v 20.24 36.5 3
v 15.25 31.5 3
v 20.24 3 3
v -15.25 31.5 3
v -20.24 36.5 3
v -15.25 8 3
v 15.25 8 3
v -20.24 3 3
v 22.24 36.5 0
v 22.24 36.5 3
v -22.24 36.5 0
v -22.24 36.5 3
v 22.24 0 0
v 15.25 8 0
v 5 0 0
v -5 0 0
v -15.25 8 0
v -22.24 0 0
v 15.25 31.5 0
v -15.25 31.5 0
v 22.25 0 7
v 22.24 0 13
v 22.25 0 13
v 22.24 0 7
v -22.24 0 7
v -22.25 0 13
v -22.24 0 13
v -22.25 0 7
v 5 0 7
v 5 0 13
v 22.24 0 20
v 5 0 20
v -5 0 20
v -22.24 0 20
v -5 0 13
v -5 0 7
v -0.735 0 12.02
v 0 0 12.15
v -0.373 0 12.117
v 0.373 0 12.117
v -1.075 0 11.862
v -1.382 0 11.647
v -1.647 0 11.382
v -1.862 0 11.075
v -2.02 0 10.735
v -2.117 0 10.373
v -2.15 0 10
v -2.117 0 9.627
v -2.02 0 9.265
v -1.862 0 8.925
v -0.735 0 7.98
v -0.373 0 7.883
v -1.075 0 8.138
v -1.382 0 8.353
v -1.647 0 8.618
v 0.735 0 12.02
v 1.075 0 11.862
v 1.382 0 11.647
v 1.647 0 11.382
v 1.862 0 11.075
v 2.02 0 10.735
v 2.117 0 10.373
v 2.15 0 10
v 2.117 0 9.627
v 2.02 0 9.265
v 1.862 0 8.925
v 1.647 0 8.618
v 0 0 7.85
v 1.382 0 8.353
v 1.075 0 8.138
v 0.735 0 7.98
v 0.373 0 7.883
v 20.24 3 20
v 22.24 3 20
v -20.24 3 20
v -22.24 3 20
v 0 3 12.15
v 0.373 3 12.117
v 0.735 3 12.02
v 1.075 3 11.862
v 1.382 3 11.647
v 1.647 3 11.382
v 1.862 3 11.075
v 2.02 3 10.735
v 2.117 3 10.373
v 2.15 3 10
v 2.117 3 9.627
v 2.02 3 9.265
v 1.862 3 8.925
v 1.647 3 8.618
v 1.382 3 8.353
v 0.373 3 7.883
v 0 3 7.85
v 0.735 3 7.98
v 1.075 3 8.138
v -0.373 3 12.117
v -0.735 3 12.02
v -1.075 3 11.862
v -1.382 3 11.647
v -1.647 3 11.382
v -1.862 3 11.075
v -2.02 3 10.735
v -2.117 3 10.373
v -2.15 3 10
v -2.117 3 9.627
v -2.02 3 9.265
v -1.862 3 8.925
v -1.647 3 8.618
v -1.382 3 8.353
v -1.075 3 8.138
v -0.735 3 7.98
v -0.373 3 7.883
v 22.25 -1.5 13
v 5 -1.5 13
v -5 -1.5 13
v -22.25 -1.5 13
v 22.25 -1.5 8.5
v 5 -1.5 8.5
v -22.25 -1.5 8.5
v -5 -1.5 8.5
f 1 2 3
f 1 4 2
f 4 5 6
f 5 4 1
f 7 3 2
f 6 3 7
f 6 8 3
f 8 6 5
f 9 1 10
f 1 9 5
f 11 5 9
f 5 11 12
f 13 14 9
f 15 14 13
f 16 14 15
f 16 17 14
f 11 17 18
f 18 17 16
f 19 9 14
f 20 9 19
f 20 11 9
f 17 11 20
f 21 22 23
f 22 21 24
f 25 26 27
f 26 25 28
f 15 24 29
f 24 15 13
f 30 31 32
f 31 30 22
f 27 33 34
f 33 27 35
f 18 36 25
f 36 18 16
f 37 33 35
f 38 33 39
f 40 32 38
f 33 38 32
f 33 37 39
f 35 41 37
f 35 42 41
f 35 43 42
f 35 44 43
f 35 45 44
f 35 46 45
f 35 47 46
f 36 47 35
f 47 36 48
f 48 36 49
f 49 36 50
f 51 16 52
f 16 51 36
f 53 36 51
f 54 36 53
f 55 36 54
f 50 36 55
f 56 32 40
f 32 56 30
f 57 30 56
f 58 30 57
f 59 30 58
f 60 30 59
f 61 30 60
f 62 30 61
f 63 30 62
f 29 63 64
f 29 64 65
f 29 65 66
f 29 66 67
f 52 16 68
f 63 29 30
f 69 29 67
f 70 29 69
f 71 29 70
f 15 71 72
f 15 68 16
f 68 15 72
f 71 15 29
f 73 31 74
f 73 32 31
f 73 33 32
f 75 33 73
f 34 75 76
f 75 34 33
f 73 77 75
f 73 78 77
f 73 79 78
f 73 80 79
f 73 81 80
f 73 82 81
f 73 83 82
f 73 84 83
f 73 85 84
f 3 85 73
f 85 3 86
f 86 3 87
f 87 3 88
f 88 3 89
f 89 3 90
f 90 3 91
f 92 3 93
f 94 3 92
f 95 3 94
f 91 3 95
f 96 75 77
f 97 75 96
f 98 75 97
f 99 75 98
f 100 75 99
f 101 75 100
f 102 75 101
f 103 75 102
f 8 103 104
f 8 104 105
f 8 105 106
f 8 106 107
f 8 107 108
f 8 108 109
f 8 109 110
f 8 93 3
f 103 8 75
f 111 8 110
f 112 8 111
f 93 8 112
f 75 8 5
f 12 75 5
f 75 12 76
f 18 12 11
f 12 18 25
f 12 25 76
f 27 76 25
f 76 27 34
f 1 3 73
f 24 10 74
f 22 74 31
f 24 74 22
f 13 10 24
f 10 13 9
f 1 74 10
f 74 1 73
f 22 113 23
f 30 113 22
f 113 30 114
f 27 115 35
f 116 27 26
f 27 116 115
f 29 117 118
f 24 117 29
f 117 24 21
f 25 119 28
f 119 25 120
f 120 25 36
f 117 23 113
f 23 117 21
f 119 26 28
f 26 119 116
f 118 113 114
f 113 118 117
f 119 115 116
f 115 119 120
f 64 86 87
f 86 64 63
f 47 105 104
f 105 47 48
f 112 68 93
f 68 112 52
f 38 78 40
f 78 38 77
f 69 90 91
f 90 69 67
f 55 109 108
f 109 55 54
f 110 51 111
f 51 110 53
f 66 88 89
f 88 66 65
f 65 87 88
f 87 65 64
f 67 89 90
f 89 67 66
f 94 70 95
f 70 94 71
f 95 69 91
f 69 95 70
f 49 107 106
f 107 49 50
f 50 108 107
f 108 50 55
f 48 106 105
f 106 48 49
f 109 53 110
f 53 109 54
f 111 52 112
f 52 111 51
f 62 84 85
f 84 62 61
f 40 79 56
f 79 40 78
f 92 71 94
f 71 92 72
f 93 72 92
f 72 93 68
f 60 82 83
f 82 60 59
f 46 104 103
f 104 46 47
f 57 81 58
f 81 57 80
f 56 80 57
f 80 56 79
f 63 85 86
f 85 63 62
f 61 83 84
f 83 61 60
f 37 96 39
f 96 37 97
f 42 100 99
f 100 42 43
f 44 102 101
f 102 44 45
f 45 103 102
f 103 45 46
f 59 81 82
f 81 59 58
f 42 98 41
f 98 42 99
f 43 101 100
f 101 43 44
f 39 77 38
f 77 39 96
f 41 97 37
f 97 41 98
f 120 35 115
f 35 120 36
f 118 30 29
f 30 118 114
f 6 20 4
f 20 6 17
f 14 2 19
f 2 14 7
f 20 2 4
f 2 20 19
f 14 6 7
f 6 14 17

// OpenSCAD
$fn=36;

rail_height=20; //2020 rail
slot_width=6;
notch_depth=1.5;
rail_screw_diameter=4.3; //M4 + margin


slot_nut_length=10;

psu_screw_diameter = rail_screw_diameter;
psu_screw_slot_length = 6;

switch_height = 30.5;
switch_width = 23.5;
switch_margin = 5;

bracket_thickness=3;
endplate_thickness=2;

bracket_length=switch_height+2*switch_margin;
bracket_width=switch_width+2*switch_margin+bracket_thickness;

e=0.01;



difference() {
    union() {
        
       //Base parts of bracket
       translate([-bracket_length/2,0,0]) {
           cube([bracket_length, bracket_width, bracket_thickness]); 
           cube([bracket_length, bracket_thickness, rail_height]);

       }
       
       //Endplates
       for(i=[-1,1]) {
           translate([i*(bracket_length/2-e), 0, 0]) hull() {
               scale([i,1,1]) cube([endplate_thickness, bracket_width, bracket_thickness]);
               scale([i,1,1]) cube([endplate_thickness, bracket_thickness, rail_height]);
           }
       }       
       
       //Notch into rail
       notch_points=[[0,-slot_width/2],[notch_depth,-slot_width/2+notch_depth],[notch_depth,slot_width/2],[0,slot_width/2]];
       notch_path=[[0,1,2,3,0]];
       
       translate([bracket_length/2+endplate_thickness,0,rail_height/2]) rotate([90,0,-90])  linear_extrude(height=bracket_length+endplate_thickness*2) polygon(points=notch_points, paths=notch_path, convexity=2);
       
    }
    
    union() {
        //Holes for mounting bolts to rail
            translate([0, -e, rail_height/2]) rotate([-90,0,0]) cylinder(d=rail_screw_diameter, h=bracket_thickness+2*e);
        
        //Cutout in notch for slot nuts
            translate([-slot_nut_length/2,-notch_depth-e,0]) cube([slot_nut_length,notch_depth+e,rail_height]);
        
        
        //Power switch hole

            translate([-switch_height/2,bracket_thickness/2+(bracket_width-switch_width)/2, -e]) cube([switch_height, switch_width,bracket_thickness+2*e]);
 
        
    }
}
